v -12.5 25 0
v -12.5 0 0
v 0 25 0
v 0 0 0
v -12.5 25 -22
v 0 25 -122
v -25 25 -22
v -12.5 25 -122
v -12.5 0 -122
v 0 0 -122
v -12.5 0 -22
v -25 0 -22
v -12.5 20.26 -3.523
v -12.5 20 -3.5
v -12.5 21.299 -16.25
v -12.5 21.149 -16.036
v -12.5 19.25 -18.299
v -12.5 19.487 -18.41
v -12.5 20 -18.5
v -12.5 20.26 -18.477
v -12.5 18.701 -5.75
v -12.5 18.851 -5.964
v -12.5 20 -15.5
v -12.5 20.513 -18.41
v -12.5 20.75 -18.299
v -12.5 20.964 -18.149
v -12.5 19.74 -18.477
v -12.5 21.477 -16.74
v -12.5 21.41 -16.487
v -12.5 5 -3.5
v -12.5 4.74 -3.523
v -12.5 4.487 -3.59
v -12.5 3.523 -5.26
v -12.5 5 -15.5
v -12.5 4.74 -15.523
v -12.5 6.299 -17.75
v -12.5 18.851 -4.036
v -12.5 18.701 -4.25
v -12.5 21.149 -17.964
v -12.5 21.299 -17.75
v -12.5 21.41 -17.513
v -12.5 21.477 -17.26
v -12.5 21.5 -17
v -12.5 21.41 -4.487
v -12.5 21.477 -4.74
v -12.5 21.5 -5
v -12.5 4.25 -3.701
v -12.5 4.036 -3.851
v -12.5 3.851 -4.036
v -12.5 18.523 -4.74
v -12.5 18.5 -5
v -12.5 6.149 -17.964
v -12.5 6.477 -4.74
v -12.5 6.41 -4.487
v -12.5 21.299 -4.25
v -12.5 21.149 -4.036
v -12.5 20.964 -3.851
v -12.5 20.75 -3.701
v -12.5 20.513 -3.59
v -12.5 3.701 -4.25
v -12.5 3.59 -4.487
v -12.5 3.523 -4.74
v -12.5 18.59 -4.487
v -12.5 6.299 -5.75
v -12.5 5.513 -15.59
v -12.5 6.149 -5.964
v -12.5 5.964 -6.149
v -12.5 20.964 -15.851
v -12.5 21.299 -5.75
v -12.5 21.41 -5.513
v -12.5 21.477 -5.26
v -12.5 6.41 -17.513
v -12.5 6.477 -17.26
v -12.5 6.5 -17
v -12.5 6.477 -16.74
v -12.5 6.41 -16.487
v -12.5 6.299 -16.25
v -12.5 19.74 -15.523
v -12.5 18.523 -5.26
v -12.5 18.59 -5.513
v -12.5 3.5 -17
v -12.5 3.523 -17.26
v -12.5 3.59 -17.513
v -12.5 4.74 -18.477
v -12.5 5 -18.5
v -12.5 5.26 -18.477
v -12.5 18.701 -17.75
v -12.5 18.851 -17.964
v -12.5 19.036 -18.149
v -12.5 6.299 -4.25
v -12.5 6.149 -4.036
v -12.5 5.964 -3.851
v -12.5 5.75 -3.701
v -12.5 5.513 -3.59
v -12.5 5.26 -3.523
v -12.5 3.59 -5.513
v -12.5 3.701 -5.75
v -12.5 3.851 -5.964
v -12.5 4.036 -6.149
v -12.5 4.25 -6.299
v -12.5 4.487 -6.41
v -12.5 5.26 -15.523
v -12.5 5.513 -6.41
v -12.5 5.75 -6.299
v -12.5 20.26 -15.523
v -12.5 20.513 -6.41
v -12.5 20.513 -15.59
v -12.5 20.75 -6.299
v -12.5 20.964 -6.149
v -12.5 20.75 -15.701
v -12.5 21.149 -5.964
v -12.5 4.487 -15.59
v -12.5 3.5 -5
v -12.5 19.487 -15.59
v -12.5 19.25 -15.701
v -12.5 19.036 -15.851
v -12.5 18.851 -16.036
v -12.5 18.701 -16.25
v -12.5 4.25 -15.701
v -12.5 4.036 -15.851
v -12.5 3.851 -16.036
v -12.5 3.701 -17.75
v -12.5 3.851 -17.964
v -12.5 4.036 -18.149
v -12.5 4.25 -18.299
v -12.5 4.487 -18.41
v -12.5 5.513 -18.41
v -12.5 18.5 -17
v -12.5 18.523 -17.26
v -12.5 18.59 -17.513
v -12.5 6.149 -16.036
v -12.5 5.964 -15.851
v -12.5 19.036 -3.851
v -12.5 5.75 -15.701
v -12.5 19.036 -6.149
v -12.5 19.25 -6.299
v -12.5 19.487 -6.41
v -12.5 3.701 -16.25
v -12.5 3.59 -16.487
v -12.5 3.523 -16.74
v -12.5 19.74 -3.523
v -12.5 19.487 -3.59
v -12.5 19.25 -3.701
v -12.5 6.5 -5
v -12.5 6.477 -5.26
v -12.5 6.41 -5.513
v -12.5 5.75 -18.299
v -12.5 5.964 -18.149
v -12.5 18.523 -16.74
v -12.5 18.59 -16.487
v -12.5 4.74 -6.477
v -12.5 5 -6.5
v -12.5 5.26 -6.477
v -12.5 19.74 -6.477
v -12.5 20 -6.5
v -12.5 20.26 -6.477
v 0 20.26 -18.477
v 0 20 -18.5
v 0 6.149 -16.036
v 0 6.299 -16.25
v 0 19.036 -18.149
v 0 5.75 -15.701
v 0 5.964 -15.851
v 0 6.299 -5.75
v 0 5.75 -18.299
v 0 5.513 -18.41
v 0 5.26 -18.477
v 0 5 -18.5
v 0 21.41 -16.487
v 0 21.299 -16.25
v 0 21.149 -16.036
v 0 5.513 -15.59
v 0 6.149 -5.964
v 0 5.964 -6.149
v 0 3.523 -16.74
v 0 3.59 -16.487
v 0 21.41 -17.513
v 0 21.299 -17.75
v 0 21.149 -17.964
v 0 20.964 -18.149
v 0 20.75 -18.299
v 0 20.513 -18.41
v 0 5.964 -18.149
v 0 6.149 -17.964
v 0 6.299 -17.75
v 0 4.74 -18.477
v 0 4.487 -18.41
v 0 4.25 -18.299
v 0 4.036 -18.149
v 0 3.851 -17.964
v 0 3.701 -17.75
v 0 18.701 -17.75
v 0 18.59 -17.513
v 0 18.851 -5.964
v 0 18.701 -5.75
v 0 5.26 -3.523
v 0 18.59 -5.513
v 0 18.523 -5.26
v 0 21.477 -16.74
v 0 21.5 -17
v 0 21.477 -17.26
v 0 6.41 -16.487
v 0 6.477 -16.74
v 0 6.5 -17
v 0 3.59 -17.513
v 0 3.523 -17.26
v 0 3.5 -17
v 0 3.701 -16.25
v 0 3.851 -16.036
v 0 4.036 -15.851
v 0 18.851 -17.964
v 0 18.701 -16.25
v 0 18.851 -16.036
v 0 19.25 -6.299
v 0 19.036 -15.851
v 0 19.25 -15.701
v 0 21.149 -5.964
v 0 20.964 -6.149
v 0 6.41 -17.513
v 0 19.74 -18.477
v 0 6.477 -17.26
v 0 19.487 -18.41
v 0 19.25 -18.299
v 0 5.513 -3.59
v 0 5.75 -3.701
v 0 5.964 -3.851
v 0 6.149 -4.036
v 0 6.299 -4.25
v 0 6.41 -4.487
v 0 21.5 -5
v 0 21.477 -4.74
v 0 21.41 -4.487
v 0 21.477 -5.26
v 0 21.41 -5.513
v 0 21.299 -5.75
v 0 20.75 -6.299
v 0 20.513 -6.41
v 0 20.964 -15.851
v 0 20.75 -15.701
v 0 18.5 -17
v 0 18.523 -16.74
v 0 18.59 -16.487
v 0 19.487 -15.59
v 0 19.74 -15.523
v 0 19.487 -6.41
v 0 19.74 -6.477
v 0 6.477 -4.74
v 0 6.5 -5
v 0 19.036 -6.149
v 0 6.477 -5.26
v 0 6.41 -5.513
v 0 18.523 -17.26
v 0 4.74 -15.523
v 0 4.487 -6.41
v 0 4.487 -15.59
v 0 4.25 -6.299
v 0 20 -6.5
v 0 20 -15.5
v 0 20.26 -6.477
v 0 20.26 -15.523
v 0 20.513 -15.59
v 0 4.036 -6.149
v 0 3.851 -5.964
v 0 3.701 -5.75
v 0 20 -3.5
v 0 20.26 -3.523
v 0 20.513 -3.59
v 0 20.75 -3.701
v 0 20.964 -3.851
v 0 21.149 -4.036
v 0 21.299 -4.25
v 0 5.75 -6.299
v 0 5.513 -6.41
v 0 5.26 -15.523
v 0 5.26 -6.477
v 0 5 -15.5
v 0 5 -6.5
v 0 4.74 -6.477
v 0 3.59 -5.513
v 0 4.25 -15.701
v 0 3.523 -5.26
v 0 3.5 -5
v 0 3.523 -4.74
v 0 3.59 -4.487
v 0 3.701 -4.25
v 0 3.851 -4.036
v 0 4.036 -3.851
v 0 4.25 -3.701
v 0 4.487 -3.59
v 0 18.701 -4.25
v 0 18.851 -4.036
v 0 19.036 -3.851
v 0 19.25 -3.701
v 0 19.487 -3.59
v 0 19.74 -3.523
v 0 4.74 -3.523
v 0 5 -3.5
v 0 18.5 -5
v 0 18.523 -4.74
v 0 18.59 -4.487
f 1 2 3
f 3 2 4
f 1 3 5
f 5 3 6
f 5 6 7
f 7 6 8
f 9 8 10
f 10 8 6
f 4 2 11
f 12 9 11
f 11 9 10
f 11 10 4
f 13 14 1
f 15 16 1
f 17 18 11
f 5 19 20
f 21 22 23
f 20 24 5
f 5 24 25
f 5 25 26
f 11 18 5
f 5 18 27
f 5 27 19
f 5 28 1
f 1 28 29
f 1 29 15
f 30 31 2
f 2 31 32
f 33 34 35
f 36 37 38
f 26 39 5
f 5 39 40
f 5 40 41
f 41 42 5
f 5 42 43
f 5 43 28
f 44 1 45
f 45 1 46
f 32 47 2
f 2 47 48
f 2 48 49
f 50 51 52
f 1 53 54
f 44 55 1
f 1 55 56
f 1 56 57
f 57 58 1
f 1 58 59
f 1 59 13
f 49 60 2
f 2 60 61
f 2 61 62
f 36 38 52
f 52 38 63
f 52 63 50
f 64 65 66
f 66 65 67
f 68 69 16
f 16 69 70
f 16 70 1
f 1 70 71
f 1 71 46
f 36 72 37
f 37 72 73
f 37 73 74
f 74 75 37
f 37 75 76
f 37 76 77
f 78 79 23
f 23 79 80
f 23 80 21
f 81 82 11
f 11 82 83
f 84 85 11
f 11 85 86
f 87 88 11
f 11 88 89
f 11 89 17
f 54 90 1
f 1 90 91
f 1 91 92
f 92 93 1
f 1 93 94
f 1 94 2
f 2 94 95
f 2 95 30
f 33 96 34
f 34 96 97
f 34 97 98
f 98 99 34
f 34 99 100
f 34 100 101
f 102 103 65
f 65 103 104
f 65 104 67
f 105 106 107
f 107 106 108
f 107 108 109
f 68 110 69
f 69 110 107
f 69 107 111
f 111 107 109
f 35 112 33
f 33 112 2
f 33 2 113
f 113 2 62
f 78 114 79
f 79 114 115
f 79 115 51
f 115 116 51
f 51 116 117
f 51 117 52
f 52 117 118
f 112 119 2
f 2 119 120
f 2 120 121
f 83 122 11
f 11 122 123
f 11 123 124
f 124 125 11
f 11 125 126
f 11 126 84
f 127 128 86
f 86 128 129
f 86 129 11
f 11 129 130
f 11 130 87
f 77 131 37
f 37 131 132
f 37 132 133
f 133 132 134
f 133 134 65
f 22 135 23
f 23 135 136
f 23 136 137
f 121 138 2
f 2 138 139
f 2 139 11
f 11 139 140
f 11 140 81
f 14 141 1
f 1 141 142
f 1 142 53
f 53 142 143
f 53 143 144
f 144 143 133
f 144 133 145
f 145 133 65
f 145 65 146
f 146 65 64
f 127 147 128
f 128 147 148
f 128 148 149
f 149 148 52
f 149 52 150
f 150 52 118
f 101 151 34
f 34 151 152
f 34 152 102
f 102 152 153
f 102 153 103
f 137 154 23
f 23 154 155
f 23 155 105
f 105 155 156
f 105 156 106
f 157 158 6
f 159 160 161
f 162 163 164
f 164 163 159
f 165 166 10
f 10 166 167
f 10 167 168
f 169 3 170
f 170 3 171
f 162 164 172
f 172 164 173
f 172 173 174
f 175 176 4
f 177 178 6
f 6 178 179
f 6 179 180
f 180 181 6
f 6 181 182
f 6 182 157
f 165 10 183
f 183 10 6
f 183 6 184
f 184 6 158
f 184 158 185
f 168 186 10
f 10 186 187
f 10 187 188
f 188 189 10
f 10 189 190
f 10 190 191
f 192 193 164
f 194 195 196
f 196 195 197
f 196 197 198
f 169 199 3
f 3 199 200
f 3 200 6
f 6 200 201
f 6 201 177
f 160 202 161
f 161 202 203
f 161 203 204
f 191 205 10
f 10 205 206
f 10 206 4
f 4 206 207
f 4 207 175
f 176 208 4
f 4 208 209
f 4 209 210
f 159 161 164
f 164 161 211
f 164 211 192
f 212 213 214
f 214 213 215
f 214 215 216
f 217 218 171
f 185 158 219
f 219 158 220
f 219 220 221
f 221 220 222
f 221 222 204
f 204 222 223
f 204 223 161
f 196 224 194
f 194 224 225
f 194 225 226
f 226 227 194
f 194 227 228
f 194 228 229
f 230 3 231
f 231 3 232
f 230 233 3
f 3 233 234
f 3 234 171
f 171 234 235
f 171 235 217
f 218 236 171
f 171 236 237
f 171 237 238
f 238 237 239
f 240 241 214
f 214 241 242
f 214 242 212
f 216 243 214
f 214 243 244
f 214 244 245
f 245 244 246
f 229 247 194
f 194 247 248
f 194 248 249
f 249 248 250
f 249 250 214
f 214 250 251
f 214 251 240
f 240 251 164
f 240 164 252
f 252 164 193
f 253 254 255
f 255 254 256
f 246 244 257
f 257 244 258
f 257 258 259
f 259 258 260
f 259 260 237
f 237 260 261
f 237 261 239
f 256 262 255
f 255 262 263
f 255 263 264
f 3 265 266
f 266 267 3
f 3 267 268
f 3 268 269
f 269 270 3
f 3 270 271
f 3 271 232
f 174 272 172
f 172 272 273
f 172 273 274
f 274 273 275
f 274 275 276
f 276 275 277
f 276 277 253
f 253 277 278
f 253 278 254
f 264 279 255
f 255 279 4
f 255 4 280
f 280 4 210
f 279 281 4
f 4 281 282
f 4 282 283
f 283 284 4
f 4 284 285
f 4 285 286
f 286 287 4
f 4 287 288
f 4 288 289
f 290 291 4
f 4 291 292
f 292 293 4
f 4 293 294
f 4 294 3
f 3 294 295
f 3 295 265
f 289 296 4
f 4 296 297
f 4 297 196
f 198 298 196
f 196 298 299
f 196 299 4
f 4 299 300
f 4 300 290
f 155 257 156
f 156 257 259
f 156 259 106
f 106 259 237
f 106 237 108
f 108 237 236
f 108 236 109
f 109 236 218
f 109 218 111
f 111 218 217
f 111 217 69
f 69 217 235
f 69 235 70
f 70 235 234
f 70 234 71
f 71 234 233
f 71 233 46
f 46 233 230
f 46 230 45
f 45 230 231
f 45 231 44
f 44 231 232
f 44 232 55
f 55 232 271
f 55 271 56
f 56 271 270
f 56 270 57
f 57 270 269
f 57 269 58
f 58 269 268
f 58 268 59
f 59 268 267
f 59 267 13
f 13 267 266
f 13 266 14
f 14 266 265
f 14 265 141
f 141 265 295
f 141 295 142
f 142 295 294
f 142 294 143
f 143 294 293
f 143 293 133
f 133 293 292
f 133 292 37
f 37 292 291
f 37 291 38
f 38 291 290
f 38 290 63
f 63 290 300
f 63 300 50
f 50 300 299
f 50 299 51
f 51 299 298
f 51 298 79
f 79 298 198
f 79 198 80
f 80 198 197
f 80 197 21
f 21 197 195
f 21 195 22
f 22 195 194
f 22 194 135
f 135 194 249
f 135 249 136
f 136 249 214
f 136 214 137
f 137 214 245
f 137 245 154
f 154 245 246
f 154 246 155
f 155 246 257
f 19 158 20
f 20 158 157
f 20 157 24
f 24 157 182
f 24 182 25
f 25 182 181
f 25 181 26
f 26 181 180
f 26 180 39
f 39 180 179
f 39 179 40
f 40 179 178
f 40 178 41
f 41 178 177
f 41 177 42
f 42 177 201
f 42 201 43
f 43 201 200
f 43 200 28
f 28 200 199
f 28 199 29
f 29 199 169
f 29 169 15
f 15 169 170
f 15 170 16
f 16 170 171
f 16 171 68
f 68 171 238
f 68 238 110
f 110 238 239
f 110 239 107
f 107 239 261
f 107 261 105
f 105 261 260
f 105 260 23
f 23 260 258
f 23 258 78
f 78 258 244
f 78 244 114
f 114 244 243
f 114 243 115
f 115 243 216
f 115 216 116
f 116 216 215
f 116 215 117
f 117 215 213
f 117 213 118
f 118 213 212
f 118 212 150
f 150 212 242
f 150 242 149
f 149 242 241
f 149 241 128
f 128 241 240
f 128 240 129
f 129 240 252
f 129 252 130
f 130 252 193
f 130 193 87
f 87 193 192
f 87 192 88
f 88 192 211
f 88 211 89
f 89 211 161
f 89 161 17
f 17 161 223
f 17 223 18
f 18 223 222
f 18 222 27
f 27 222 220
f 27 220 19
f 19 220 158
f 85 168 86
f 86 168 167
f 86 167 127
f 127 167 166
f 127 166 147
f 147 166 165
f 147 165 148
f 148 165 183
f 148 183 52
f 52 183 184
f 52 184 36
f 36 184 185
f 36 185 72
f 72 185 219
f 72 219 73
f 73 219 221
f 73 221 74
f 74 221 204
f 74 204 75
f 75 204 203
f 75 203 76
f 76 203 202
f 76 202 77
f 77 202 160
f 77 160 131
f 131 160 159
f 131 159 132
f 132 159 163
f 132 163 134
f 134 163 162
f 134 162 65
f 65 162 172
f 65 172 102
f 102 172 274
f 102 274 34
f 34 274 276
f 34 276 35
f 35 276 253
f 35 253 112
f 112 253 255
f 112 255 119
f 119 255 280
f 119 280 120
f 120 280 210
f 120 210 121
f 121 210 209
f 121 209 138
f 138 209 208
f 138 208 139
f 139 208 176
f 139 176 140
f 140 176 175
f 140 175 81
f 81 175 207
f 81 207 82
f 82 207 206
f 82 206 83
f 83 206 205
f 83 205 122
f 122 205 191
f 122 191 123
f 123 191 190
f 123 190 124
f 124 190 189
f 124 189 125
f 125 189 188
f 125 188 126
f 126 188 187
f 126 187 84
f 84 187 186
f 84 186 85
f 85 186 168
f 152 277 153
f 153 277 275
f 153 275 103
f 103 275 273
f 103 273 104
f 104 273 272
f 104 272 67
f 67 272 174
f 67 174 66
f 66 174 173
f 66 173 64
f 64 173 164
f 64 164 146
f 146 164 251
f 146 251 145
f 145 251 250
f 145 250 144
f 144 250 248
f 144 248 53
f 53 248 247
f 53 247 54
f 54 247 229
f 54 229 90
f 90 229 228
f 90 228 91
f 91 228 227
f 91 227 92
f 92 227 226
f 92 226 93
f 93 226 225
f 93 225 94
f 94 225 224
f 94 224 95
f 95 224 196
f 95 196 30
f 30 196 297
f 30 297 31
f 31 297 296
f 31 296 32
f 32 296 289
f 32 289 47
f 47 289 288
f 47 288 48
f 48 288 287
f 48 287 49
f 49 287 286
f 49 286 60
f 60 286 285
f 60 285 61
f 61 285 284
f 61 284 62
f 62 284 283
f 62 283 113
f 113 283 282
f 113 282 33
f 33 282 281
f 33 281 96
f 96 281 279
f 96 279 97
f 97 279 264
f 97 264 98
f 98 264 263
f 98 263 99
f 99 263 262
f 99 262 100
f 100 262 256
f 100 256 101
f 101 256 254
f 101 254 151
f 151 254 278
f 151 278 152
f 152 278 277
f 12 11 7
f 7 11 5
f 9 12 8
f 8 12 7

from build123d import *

# Parameters (mm, degrees)
SKETCH1_W           = 122
SKETCH1_H           = 25
SKETCH1_R           = 1.5
BOSS_EXTRUDE1_DEPTH = 12.5
BOSS_EXTRUDE2_DEPTH = 25


with BuildPart() as part:
    # Sketch1 → Boss-Extrude1 (new body)
    with BuildSketch(Plane(origin=(0, 0, 0), x_dir=(0, 0, -1), z_dir=(1, 0, 0))):
        with Locations((61, 12.5)):
            Rectangle(SKETCH1_W, SKETCH1_H)
        with Locations((5, 20)):
            Circle(SKETCH1_R, mode=Mode.SUBTRACT)
        with Locations((17, 20)):
            Circle(SKETCH1_R, mode=Mode.SUBTRACT)
        with Locations((17, 5)):
            Circle(SKETCH1_R, mode=Mode.SUBTRACT)
        with Locations((5, 5)):
            Circle(SKETCH1_R, mode=Mode.SUBTRACT)
    extrude(amount=-BOSS_EXTRUDE1_DEPTH)

    # Sketch2 → Boss-Extrude2 (add)
    with BuildSketch(Plane(origin=(0, 25, 0), x_dir=(1, 0, 0), z_dir=(0, 1, 0))):
        Polygon((-12.5, 122), (-25, 22), (-12.5, 22), align=None)
    extrude(amount=-BOSS_EXTRUDE2_DEPTH)


solid = part.part
